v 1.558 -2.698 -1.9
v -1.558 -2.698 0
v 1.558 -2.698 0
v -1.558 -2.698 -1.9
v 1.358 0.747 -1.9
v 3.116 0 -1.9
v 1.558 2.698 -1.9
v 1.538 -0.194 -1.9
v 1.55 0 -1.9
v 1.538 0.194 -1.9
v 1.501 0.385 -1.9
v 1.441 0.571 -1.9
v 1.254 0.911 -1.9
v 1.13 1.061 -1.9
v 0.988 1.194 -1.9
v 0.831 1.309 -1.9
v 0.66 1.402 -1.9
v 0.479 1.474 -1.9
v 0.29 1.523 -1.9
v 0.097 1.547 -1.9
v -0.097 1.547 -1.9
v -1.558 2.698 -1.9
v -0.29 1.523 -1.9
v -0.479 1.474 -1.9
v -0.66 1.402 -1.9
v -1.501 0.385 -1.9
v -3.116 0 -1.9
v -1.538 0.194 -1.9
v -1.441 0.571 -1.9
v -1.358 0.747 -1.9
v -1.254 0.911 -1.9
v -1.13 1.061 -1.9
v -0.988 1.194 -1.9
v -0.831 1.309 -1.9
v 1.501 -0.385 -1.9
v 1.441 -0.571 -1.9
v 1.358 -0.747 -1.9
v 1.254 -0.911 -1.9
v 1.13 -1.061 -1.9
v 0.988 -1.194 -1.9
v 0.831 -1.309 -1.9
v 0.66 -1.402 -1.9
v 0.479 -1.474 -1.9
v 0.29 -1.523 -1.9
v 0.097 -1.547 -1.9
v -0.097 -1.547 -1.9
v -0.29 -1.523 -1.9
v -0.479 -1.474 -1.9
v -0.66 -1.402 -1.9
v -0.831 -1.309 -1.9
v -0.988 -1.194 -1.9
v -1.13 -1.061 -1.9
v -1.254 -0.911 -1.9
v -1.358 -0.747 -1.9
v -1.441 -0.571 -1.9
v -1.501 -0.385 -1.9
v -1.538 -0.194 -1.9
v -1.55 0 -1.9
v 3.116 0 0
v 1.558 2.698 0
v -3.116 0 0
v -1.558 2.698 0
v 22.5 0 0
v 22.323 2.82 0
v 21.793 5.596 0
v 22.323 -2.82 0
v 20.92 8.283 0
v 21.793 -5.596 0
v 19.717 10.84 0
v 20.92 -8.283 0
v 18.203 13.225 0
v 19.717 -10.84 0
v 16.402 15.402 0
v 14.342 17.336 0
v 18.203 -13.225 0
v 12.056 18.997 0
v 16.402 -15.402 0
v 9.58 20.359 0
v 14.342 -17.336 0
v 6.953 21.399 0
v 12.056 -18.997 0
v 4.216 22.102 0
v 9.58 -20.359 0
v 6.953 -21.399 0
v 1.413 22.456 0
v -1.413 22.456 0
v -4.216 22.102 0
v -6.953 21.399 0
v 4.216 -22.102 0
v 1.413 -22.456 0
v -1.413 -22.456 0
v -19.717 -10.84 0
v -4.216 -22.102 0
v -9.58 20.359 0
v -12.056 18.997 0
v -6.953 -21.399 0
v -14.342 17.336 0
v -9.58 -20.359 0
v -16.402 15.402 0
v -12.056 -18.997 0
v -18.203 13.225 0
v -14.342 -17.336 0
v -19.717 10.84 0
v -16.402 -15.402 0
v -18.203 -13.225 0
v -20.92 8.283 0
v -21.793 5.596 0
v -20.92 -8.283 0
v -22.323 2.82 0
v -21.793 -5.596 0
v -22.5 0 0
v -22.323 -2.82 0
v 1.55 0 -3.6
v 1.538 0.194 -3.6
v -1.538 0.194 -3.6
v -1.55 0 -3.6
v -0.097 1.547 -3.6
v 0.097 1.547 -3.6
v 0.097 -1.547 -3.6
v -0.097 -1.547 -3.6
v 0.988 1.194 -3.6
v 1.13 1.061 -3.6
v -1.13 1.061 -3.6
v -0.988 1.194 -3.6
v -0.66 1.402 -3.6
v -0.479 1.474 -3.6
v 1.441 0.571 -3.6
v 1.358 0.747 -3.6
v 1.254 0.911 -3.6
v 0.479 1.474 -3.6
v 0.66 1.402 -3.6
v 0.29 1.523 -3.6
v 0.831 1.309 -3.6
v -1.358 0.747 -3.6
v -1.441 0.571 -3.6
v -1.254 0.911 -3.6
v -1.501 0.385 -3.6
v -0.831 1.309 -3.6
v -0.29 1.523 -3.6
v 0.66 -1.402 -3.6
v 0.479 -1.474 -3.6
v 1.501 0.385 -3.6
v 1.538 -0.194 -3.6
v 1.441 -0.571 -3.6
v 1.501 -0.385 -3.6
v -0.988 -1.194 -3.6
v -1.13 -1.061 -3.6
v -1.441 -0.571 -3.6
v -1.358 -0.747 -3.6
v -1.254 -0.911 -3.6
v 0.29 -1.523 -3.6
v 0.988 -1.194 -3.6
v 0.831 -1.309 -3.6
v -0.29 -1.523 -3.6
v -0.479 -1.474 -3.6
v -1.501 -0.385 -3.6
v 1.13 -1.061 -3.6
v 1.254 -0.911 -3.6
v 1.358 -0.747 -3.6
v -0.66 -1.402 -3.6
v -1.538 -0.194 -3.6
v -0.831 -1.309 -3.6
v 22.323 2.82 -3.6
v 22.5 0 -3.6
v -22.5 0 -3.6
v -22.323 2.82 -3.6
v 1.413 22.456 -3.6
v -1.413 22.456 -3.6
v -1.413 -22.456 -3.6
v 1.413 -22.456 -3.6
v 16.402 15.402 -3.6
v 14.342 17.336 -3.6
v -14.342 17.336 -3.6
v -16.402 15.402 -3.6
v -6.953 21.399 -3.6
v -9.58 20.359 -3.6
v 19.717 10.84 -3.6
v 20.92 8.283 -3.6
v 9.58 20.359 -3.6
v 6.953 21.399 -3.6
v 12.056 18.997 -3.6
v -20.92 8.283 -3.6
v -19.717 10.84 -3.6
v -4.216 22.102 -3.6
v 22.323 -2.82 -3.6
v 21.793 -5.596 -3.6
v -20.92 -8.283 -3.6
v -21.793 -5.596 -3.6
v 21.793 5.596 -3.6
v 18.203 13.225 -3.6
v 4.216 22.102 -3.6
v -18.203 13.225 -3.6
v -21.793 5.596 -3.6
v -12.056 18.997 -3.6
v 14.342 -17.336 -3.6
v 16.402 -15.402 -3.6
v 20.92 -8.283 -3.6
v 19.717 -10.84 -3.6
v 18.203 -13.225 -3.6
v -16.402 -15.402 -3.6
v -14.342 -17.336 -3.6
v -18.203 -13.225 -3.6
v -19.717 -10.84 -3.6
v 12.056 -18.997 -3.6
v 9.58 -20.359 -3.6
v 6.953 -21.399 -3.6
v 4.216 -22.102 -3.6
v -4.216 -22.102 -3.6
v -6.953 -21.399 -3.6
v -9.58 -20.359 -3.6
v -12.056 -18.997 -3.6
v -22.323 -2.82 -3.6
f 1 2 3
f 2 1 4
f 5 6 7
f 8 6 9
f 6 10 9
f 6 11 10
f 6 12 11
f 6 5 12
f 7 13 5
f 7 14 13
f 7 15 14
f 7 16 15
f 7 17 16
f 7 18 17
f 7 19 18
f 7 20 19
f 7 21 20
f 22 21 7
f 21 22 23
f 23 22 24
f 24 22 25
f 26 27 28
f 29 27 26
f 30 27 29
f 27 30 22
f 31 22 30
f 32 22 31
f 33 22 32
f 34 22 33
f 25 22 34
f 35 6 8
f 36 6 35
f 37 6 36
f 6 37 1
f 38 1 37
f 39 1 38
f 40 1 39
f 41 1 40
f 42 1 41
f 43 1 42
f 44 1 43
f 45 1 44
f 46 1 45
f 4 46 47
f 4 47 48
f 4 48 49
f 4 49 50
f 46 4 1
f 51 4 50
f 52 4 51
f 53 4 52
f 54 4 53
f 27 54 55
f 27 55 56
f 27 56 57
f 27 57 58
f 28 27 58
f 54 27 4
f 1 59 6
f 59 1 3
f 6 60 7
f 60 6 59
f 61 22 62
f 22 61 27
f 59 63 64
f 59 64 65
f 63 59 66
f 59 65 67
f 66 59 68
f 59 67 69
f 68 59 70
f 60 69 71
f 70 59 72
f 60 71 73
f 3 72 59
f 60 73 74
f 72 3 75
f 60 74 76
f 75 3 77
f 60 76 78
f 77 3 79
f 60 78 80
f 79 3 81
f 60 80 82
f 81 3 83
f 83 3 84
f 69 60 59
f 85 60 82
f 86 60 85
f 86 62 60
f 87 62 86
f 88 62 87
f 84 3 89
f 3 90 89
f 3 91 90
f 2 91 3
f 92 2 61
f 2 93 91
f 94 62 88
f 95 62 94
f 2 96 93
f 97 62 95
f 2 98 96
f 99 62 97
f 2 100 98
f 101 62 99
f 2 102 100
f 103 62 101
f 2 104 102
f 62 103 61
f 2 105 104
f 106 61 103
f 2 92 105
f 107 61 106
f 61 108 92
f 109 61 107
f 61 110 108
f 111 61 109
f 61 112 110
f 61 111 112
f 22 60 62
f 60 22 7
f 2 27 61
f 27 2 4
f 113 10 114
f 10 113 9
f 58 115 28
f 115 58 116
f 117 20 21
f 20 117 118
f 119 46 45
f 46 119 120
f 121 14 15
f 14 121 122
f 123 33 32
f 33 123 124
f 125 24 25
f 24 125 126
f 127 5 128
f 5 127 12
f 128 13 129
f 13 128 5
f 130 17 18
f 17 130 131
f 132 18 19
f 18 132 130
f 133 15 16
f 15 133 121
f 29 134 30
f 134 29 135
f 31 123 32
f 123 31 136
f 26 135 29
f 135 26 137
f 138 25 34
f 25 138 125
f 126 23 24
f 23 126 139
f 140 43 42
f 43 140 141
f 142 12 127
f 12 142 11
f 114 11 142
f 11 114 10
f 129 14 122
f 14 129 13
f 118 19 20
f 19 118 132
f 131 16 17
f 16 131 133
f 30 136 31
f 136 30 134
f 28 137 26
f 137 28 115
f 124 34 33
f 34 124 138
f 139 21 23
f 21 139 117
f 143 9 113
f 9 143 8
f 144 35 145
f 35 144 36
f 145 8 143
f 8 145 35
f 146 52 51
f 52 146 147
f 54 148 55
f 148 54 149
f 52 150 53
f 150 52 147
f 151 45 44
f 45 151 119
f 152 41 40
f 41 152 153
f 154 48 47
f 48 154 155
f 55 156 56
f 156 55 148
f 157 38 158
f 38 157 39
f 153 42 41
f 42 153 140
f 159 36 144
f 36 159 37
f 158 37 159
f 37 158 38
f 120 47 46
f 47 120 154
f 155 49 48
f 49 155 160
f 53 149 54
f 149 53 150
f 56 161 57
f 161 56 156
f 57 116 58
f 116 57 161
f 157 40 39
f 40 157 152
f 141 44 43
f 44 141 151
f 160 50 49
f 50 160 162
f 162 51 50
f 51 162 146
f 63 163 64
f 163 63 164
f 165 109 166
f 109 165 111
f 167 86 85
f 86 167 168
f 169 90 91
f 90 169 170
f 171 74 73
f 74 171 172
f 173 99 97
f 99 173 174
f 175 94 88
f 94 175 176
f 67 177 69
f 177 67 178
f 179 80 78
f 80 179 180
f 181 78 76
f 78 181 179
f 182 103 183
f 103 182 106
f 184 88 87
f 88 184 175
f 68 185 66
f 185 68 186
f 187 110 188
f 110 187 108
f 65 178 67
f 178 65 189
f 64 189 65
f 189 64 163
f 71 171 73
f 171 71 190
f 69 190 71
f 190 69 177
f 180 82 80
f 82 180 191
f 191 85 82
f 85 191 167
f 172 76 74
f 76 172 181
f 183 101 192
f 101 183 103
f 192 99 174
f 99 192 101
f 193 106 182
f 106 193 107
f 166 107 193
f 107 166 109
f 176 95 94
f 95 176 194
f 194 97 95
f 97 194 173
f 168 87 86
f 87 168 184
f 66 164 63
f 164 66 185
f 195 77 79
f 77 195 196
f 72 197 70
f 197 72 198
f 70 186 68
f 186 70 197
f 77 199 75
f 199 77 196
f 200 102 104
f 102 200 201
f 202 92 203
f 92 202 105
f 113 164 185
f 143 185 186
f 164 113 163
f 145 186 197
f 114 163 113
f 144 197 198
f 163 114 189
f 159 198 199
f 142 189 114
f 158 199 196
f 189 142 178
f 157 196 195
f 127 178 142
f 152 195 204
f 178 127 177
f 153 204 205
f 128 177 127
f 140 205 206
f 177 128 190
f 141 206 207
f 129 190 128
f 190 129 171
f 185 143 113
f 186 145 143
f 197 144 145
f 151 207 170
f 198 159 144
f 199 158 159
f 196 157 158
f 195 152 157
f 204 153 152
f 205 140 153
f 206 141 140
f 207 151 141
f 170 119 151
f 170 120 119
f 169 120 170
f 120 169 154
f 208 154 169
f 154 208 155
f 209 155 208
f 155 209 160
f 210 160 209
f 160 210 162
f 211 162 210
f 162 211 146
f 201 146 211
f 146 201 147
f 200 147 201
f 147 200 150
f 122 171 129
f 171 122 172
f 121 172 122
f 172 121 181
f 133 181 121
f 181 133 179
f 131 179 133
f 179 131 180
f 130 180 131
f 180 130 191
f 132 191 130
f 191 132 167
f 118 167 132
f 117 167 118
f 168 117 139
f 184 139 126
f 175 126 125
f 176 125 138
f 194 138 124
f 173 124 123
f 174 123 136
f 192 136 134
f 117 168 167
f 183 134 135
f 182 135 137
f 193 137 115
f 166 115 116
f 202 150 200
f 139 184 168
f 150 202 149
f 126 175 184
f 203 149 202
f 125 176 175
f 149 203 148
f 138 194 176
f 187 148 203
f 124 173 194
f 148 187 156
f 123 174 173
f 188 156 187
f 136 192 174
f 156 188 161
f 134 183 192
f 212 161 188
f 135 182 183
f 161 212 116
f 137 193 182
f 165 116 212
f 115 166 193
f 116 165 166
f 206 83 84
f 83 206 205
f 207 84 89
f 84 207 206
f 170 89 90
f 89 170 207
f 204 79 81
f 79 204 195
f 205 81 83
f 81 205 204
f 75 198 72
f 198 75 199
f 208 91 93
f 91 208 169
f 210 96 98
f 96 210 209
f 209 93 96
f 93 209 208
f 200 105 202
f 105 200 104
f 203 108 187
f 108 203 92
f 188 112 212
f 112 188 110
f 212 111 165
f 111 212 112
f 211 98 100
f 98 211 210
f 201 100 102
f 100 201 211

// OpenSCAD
$fn = 50;


difference() {
	union() {
		translate(v = [0, 0, -3.6000000000]) {
			cylinder(h = 3.6000000000, r = 22.5000000000);
		}
	}
	union() {
		translate(v = [0, 0, 0]) {
			rotate(a = [0, 0, 0]) {
				difference() {
					union() {
						translate(v = [0, 0, -1.9000000000]) {
							linear_extrude(height = 1.9000000000) {
								polygon(points = [[3.1158000000, 0.0000000000], [1.5579000000, 2.6983619531], [-1.5579000000, 2.6983619531], [-3.1158000000, 0.0000000000], [-1.5579000000, -2.6983619531], [1.5579000000, -2.6983619531]]);
							}
						}
					}
					union();
				}
			}
		}
		#translate(v = [0, 0, -100.0000000000]) {
			cylinder(h = 200, r = 1.5500000000);
		}
	}
}
